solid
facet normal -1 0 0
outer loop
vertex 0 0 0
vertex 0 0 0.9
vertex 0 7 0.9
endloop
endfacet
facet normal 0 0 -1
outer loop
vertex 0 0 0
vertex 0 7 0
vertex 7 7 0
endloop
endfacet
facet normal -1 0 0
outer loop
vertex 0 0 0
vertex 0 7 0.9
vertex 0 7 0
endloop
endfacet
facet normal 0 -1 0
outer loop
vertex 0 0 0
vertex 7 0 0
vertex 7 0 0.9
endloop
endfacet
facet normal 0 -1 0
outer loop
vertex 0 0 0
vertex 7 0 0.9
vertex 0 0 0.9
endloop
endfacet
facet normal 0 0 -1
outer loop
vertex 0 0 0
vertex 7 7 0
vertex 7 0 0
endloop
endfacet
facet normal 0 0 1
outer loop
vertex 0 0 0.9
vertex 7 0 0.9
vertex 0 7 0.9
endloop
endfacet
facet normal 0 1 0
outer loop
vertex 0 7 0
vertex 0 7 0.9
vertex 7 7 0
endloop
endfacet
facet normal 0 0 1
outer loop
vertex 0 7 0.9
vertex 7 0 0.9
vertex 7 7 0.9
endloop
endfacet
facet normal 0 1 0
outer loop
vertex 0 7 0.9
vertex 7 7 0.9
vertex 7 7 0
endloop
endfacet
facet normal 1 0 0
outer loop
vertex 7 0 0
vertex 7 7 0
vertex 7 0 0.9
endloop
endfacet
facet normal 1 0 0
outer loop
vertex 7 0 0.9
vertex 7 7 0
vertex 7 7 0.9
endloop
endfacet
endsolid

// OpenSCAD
/* Warning, this is a very basic generator with a lot of approximation 
input data : [VQFN, UXX, 7x7x0.9mm, 48, , A, C04-00340A]
generated by com.zoubworld.electronics.cad.model3d.Basic
Date : Sun Feb 15 10:50:48 CET 2026
*/

//body
color("black")
translate([0,0,0])
cube([7.0,7.0,0.9], center=false);
